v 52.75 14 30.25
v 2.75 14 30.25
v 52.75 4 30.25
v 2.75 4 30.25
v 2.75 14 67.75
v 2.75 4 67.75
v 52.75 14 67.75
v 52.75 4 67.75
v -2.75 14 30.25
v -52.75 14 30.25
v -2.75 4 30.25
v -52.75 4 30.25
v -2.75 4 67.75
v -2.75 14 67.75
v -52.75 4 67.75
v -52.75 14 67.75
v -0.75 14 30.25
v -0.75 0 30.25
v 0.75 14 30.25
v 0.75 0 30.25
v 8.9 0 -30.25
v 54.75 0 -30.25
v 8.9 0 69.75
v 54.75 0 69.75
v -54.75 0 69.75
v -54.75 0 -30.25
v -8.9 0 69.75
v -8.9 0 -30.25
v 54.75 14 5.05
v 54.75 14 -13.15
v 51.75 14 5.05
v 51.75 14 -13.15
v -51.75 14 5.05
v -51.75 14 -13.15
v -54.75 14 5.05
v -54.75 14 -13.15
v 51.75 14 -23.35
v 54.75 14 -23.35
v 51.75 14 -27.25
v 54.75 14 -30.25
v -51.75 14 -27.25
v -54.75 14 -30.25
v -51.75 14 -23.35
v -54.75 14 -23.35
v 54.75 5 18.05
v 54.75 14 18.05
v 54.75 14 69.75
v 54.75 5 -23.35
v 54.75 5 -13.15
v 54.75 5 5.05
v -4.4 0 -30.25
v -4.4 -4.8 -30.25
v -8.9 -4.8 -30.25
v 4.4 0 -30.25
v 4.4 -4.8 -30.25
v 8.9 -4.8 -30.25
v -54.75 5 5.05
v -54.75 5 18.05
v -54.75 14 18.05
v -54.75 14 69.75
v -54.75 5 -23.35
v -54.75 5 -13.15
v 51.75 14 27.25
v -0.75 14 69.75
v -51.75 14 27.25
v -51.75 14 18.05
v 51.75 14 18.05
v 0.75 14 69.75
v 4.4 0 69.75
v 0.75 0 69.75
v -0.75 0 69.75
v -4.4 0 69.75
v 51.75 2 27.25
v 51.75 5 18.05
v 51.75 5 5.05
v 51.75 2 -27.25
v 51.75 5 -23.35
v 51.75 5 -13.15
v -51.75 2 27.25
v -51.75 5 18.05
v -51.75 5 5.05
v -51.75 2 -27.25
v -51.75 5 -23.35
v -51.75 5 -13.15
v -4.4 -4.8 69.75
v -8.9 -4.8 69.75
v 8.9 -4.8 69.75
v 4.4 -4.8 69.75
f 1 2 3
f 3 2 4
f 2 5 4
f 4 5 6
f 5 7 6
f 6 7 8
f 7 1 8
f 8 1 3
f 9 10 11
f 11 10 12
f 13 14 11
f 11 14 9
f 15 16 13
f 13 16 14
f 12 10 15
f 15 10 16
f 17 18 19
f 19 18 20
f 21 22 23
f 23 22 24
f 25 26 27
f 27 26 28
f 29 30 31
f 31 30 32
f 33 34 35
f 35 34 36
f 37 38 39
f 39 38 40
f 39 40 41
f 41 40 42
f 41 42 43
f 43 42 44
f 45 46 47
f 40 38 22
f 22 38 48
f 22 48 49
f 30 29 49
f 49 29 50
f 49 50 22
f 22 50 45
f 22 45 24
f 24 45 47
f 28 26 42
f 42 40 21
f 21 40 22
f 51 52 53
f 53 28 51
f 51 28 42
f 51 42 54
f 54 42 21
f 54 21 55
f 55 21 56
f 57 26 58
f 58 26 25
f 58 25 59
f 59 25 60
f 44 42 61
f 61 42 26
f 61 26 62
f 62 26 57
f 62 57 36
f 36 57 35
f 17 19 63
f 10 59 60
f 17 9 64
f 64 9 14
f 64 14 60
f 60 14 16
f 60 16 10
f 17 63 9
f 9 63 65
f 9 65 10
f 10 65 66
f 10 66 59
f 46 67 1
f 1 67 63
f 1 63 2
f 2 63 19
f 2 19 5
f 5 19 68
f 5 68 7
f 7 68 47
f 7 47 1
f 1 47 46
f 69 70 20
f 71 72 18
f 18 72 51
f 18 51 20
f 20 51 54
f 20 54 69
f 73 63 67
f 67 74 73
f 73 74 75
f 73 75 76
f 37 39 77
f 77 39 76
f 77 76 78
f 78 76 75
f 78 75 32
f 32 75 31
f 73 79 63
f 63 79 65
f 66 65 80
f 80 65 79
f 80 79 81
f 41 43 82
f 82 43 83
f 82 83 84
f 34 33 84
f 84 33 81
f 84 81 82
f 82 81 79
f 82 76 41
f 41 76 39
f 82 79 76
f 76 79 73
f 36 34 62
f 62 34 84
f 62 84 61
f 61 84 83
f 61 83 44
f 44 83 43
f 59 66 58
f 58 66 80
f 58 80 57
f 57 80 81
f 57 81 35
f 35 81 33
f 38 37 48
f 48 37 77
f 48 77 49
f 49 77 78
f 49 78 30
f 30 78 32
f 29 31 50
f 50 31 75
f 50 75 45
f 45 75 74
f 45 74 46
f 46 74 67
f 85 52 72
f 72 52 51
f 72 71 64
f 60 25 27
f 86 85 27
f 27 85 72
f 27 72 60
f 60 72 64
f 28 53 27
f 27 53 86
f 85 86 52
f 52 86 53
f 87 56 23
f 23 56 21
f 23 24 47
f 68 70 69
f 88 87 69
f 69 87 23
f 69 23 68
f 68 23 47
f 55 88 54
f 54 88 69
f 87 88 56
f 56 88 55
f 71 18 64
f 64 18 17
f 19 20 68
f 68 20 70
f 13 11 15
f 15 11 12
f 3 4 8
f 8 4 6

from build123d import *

# Parameters (mm, degrees)
SKETCH1_W           = 109.5
SKETCH1_H           = 60.5
BOSS_EXTRUDE1_DEPTH = 14
SKETCH2_W           = 103.5
SKETCH2_H           = 54.5
CUT_EXTRUDE1_DEPTH  = 12
SKETCH4_W           = 13
SKETCH4_H           = 9
SKETCH4_W_2         = 10.2
CUT_EXTRUDE2_DEPTH  = 115.460964962
SKETCH5_W           = 4.5
SKETCH5_H           = 100
BOSS_EXTRUDE3_DEPTH = 4.8
BOSS_EXTRUDE7_DEPTH = 14
SKETCH9_W           = 50
SKETCH9_H           = 37.5
BOSS_EXTRUDE8_DEPTH = 4


with BuildPart() as part:
    # Sketch1 → Boss-Extrude1 (new body)
    with BuildSketch(Plane(origin=(0, 0, 0), x_dir=(1, 0, 0), z_dir=(0, 1, 0))):
        Rectangle(SKETCH1_W, SKETCH1_H)
    extrude(amount=BOSS_EXTRUDE1_DEPTH)

    # Sketch2 → Cut-Extrude1 (cut)
    with BuildSketch(Plane(origin=(0, 14, 0), x_dir=(1, 0, 0), z_dir=(0, 1, 0))):
        Rectangle(SKETCH2_W, SKETCH2_H)
    extrude(amount=-CUT_EXTRUDE1_DEPTH, mode=Mode.SUBTRACT)

    # Sketch4 → Cut-Extrude2 (cut, through all)
    with BuildSketch(Plane(origin=(54.75, 0, 0), x_dir=(0, 0, -1), z_dir=(1, 0, 0))):
        with Locations((-11.55, 9.5)):
            Rectangle(SKETCH4_W, SKETCH4_H)
        with Locations((18.25, 9.5)):
            Rectangle(SKETCH4_W_2, SKETCH4_H)
    extrude(amount=-CUT_EXTRUDE2_DEPTH, mode=Mode.SUBTRACT)

    # Sketch5 → Boss-Extrude3 (add)
    with BuildSketch(Plane.XZ):
        with Locations((-6.65, 19.75)):
            Rectangle(SKETCH5_W, SKETCH5_H)
    boss_extrude3 = extrude(amount=BOSS_EXTRUDE3_DEPTH)

    # Mirror1: Boss-Extrude3 across plane
    add(boss_extrude3.mirror(Plane(origin=(0, 0, 0), x_dir=(0, 0, 1), z_dir=(1, 0, 0))))

    # Sketch6 → Boss-Extrude7 (add)
    with BuildSketch(Plane(origin=(0, 0, 0), x_dir=(1, 0, 0), z_dir=(0, 1, 0))):
        Polygon((-0.75, -30.25), (-0.75, -69.75), (-54.75, -69.75), (-54.75, -30.25), (-52.75, -30.25), (-52.75, -67.75), (-2.75, -67.75), (-2.75, -30.25), align=None)
        Polygon((54.75, -30.25), (54.75, -69.75), (0.75, -69.75), (0.75, -30.25), (2.75, -30.25), (2.75, -67.75), (52.75, -67.75), (52.75, -30.25), align=None)
    extrude(amount=BOSS_EXTRUDE7_DEPTH)

    # Sketch9 → Boss-Extrude8 (add)
    with BuildSketch(Plane(origin=(0, 0, 0), x_dir=(1, 0, 0), z_dir=(0, 1, 0))):
        with Locations((-27.75, -49)):
            Rectangle(SKETCH9_W, SKETCH9_H)
        with Locations((27.75, -49)):
            Rectangle(SKETCH9_W, SKETCH9_H)
    extrude(amount=BOSS_EXTRUDE8_DEPTH)


solid = part.part
